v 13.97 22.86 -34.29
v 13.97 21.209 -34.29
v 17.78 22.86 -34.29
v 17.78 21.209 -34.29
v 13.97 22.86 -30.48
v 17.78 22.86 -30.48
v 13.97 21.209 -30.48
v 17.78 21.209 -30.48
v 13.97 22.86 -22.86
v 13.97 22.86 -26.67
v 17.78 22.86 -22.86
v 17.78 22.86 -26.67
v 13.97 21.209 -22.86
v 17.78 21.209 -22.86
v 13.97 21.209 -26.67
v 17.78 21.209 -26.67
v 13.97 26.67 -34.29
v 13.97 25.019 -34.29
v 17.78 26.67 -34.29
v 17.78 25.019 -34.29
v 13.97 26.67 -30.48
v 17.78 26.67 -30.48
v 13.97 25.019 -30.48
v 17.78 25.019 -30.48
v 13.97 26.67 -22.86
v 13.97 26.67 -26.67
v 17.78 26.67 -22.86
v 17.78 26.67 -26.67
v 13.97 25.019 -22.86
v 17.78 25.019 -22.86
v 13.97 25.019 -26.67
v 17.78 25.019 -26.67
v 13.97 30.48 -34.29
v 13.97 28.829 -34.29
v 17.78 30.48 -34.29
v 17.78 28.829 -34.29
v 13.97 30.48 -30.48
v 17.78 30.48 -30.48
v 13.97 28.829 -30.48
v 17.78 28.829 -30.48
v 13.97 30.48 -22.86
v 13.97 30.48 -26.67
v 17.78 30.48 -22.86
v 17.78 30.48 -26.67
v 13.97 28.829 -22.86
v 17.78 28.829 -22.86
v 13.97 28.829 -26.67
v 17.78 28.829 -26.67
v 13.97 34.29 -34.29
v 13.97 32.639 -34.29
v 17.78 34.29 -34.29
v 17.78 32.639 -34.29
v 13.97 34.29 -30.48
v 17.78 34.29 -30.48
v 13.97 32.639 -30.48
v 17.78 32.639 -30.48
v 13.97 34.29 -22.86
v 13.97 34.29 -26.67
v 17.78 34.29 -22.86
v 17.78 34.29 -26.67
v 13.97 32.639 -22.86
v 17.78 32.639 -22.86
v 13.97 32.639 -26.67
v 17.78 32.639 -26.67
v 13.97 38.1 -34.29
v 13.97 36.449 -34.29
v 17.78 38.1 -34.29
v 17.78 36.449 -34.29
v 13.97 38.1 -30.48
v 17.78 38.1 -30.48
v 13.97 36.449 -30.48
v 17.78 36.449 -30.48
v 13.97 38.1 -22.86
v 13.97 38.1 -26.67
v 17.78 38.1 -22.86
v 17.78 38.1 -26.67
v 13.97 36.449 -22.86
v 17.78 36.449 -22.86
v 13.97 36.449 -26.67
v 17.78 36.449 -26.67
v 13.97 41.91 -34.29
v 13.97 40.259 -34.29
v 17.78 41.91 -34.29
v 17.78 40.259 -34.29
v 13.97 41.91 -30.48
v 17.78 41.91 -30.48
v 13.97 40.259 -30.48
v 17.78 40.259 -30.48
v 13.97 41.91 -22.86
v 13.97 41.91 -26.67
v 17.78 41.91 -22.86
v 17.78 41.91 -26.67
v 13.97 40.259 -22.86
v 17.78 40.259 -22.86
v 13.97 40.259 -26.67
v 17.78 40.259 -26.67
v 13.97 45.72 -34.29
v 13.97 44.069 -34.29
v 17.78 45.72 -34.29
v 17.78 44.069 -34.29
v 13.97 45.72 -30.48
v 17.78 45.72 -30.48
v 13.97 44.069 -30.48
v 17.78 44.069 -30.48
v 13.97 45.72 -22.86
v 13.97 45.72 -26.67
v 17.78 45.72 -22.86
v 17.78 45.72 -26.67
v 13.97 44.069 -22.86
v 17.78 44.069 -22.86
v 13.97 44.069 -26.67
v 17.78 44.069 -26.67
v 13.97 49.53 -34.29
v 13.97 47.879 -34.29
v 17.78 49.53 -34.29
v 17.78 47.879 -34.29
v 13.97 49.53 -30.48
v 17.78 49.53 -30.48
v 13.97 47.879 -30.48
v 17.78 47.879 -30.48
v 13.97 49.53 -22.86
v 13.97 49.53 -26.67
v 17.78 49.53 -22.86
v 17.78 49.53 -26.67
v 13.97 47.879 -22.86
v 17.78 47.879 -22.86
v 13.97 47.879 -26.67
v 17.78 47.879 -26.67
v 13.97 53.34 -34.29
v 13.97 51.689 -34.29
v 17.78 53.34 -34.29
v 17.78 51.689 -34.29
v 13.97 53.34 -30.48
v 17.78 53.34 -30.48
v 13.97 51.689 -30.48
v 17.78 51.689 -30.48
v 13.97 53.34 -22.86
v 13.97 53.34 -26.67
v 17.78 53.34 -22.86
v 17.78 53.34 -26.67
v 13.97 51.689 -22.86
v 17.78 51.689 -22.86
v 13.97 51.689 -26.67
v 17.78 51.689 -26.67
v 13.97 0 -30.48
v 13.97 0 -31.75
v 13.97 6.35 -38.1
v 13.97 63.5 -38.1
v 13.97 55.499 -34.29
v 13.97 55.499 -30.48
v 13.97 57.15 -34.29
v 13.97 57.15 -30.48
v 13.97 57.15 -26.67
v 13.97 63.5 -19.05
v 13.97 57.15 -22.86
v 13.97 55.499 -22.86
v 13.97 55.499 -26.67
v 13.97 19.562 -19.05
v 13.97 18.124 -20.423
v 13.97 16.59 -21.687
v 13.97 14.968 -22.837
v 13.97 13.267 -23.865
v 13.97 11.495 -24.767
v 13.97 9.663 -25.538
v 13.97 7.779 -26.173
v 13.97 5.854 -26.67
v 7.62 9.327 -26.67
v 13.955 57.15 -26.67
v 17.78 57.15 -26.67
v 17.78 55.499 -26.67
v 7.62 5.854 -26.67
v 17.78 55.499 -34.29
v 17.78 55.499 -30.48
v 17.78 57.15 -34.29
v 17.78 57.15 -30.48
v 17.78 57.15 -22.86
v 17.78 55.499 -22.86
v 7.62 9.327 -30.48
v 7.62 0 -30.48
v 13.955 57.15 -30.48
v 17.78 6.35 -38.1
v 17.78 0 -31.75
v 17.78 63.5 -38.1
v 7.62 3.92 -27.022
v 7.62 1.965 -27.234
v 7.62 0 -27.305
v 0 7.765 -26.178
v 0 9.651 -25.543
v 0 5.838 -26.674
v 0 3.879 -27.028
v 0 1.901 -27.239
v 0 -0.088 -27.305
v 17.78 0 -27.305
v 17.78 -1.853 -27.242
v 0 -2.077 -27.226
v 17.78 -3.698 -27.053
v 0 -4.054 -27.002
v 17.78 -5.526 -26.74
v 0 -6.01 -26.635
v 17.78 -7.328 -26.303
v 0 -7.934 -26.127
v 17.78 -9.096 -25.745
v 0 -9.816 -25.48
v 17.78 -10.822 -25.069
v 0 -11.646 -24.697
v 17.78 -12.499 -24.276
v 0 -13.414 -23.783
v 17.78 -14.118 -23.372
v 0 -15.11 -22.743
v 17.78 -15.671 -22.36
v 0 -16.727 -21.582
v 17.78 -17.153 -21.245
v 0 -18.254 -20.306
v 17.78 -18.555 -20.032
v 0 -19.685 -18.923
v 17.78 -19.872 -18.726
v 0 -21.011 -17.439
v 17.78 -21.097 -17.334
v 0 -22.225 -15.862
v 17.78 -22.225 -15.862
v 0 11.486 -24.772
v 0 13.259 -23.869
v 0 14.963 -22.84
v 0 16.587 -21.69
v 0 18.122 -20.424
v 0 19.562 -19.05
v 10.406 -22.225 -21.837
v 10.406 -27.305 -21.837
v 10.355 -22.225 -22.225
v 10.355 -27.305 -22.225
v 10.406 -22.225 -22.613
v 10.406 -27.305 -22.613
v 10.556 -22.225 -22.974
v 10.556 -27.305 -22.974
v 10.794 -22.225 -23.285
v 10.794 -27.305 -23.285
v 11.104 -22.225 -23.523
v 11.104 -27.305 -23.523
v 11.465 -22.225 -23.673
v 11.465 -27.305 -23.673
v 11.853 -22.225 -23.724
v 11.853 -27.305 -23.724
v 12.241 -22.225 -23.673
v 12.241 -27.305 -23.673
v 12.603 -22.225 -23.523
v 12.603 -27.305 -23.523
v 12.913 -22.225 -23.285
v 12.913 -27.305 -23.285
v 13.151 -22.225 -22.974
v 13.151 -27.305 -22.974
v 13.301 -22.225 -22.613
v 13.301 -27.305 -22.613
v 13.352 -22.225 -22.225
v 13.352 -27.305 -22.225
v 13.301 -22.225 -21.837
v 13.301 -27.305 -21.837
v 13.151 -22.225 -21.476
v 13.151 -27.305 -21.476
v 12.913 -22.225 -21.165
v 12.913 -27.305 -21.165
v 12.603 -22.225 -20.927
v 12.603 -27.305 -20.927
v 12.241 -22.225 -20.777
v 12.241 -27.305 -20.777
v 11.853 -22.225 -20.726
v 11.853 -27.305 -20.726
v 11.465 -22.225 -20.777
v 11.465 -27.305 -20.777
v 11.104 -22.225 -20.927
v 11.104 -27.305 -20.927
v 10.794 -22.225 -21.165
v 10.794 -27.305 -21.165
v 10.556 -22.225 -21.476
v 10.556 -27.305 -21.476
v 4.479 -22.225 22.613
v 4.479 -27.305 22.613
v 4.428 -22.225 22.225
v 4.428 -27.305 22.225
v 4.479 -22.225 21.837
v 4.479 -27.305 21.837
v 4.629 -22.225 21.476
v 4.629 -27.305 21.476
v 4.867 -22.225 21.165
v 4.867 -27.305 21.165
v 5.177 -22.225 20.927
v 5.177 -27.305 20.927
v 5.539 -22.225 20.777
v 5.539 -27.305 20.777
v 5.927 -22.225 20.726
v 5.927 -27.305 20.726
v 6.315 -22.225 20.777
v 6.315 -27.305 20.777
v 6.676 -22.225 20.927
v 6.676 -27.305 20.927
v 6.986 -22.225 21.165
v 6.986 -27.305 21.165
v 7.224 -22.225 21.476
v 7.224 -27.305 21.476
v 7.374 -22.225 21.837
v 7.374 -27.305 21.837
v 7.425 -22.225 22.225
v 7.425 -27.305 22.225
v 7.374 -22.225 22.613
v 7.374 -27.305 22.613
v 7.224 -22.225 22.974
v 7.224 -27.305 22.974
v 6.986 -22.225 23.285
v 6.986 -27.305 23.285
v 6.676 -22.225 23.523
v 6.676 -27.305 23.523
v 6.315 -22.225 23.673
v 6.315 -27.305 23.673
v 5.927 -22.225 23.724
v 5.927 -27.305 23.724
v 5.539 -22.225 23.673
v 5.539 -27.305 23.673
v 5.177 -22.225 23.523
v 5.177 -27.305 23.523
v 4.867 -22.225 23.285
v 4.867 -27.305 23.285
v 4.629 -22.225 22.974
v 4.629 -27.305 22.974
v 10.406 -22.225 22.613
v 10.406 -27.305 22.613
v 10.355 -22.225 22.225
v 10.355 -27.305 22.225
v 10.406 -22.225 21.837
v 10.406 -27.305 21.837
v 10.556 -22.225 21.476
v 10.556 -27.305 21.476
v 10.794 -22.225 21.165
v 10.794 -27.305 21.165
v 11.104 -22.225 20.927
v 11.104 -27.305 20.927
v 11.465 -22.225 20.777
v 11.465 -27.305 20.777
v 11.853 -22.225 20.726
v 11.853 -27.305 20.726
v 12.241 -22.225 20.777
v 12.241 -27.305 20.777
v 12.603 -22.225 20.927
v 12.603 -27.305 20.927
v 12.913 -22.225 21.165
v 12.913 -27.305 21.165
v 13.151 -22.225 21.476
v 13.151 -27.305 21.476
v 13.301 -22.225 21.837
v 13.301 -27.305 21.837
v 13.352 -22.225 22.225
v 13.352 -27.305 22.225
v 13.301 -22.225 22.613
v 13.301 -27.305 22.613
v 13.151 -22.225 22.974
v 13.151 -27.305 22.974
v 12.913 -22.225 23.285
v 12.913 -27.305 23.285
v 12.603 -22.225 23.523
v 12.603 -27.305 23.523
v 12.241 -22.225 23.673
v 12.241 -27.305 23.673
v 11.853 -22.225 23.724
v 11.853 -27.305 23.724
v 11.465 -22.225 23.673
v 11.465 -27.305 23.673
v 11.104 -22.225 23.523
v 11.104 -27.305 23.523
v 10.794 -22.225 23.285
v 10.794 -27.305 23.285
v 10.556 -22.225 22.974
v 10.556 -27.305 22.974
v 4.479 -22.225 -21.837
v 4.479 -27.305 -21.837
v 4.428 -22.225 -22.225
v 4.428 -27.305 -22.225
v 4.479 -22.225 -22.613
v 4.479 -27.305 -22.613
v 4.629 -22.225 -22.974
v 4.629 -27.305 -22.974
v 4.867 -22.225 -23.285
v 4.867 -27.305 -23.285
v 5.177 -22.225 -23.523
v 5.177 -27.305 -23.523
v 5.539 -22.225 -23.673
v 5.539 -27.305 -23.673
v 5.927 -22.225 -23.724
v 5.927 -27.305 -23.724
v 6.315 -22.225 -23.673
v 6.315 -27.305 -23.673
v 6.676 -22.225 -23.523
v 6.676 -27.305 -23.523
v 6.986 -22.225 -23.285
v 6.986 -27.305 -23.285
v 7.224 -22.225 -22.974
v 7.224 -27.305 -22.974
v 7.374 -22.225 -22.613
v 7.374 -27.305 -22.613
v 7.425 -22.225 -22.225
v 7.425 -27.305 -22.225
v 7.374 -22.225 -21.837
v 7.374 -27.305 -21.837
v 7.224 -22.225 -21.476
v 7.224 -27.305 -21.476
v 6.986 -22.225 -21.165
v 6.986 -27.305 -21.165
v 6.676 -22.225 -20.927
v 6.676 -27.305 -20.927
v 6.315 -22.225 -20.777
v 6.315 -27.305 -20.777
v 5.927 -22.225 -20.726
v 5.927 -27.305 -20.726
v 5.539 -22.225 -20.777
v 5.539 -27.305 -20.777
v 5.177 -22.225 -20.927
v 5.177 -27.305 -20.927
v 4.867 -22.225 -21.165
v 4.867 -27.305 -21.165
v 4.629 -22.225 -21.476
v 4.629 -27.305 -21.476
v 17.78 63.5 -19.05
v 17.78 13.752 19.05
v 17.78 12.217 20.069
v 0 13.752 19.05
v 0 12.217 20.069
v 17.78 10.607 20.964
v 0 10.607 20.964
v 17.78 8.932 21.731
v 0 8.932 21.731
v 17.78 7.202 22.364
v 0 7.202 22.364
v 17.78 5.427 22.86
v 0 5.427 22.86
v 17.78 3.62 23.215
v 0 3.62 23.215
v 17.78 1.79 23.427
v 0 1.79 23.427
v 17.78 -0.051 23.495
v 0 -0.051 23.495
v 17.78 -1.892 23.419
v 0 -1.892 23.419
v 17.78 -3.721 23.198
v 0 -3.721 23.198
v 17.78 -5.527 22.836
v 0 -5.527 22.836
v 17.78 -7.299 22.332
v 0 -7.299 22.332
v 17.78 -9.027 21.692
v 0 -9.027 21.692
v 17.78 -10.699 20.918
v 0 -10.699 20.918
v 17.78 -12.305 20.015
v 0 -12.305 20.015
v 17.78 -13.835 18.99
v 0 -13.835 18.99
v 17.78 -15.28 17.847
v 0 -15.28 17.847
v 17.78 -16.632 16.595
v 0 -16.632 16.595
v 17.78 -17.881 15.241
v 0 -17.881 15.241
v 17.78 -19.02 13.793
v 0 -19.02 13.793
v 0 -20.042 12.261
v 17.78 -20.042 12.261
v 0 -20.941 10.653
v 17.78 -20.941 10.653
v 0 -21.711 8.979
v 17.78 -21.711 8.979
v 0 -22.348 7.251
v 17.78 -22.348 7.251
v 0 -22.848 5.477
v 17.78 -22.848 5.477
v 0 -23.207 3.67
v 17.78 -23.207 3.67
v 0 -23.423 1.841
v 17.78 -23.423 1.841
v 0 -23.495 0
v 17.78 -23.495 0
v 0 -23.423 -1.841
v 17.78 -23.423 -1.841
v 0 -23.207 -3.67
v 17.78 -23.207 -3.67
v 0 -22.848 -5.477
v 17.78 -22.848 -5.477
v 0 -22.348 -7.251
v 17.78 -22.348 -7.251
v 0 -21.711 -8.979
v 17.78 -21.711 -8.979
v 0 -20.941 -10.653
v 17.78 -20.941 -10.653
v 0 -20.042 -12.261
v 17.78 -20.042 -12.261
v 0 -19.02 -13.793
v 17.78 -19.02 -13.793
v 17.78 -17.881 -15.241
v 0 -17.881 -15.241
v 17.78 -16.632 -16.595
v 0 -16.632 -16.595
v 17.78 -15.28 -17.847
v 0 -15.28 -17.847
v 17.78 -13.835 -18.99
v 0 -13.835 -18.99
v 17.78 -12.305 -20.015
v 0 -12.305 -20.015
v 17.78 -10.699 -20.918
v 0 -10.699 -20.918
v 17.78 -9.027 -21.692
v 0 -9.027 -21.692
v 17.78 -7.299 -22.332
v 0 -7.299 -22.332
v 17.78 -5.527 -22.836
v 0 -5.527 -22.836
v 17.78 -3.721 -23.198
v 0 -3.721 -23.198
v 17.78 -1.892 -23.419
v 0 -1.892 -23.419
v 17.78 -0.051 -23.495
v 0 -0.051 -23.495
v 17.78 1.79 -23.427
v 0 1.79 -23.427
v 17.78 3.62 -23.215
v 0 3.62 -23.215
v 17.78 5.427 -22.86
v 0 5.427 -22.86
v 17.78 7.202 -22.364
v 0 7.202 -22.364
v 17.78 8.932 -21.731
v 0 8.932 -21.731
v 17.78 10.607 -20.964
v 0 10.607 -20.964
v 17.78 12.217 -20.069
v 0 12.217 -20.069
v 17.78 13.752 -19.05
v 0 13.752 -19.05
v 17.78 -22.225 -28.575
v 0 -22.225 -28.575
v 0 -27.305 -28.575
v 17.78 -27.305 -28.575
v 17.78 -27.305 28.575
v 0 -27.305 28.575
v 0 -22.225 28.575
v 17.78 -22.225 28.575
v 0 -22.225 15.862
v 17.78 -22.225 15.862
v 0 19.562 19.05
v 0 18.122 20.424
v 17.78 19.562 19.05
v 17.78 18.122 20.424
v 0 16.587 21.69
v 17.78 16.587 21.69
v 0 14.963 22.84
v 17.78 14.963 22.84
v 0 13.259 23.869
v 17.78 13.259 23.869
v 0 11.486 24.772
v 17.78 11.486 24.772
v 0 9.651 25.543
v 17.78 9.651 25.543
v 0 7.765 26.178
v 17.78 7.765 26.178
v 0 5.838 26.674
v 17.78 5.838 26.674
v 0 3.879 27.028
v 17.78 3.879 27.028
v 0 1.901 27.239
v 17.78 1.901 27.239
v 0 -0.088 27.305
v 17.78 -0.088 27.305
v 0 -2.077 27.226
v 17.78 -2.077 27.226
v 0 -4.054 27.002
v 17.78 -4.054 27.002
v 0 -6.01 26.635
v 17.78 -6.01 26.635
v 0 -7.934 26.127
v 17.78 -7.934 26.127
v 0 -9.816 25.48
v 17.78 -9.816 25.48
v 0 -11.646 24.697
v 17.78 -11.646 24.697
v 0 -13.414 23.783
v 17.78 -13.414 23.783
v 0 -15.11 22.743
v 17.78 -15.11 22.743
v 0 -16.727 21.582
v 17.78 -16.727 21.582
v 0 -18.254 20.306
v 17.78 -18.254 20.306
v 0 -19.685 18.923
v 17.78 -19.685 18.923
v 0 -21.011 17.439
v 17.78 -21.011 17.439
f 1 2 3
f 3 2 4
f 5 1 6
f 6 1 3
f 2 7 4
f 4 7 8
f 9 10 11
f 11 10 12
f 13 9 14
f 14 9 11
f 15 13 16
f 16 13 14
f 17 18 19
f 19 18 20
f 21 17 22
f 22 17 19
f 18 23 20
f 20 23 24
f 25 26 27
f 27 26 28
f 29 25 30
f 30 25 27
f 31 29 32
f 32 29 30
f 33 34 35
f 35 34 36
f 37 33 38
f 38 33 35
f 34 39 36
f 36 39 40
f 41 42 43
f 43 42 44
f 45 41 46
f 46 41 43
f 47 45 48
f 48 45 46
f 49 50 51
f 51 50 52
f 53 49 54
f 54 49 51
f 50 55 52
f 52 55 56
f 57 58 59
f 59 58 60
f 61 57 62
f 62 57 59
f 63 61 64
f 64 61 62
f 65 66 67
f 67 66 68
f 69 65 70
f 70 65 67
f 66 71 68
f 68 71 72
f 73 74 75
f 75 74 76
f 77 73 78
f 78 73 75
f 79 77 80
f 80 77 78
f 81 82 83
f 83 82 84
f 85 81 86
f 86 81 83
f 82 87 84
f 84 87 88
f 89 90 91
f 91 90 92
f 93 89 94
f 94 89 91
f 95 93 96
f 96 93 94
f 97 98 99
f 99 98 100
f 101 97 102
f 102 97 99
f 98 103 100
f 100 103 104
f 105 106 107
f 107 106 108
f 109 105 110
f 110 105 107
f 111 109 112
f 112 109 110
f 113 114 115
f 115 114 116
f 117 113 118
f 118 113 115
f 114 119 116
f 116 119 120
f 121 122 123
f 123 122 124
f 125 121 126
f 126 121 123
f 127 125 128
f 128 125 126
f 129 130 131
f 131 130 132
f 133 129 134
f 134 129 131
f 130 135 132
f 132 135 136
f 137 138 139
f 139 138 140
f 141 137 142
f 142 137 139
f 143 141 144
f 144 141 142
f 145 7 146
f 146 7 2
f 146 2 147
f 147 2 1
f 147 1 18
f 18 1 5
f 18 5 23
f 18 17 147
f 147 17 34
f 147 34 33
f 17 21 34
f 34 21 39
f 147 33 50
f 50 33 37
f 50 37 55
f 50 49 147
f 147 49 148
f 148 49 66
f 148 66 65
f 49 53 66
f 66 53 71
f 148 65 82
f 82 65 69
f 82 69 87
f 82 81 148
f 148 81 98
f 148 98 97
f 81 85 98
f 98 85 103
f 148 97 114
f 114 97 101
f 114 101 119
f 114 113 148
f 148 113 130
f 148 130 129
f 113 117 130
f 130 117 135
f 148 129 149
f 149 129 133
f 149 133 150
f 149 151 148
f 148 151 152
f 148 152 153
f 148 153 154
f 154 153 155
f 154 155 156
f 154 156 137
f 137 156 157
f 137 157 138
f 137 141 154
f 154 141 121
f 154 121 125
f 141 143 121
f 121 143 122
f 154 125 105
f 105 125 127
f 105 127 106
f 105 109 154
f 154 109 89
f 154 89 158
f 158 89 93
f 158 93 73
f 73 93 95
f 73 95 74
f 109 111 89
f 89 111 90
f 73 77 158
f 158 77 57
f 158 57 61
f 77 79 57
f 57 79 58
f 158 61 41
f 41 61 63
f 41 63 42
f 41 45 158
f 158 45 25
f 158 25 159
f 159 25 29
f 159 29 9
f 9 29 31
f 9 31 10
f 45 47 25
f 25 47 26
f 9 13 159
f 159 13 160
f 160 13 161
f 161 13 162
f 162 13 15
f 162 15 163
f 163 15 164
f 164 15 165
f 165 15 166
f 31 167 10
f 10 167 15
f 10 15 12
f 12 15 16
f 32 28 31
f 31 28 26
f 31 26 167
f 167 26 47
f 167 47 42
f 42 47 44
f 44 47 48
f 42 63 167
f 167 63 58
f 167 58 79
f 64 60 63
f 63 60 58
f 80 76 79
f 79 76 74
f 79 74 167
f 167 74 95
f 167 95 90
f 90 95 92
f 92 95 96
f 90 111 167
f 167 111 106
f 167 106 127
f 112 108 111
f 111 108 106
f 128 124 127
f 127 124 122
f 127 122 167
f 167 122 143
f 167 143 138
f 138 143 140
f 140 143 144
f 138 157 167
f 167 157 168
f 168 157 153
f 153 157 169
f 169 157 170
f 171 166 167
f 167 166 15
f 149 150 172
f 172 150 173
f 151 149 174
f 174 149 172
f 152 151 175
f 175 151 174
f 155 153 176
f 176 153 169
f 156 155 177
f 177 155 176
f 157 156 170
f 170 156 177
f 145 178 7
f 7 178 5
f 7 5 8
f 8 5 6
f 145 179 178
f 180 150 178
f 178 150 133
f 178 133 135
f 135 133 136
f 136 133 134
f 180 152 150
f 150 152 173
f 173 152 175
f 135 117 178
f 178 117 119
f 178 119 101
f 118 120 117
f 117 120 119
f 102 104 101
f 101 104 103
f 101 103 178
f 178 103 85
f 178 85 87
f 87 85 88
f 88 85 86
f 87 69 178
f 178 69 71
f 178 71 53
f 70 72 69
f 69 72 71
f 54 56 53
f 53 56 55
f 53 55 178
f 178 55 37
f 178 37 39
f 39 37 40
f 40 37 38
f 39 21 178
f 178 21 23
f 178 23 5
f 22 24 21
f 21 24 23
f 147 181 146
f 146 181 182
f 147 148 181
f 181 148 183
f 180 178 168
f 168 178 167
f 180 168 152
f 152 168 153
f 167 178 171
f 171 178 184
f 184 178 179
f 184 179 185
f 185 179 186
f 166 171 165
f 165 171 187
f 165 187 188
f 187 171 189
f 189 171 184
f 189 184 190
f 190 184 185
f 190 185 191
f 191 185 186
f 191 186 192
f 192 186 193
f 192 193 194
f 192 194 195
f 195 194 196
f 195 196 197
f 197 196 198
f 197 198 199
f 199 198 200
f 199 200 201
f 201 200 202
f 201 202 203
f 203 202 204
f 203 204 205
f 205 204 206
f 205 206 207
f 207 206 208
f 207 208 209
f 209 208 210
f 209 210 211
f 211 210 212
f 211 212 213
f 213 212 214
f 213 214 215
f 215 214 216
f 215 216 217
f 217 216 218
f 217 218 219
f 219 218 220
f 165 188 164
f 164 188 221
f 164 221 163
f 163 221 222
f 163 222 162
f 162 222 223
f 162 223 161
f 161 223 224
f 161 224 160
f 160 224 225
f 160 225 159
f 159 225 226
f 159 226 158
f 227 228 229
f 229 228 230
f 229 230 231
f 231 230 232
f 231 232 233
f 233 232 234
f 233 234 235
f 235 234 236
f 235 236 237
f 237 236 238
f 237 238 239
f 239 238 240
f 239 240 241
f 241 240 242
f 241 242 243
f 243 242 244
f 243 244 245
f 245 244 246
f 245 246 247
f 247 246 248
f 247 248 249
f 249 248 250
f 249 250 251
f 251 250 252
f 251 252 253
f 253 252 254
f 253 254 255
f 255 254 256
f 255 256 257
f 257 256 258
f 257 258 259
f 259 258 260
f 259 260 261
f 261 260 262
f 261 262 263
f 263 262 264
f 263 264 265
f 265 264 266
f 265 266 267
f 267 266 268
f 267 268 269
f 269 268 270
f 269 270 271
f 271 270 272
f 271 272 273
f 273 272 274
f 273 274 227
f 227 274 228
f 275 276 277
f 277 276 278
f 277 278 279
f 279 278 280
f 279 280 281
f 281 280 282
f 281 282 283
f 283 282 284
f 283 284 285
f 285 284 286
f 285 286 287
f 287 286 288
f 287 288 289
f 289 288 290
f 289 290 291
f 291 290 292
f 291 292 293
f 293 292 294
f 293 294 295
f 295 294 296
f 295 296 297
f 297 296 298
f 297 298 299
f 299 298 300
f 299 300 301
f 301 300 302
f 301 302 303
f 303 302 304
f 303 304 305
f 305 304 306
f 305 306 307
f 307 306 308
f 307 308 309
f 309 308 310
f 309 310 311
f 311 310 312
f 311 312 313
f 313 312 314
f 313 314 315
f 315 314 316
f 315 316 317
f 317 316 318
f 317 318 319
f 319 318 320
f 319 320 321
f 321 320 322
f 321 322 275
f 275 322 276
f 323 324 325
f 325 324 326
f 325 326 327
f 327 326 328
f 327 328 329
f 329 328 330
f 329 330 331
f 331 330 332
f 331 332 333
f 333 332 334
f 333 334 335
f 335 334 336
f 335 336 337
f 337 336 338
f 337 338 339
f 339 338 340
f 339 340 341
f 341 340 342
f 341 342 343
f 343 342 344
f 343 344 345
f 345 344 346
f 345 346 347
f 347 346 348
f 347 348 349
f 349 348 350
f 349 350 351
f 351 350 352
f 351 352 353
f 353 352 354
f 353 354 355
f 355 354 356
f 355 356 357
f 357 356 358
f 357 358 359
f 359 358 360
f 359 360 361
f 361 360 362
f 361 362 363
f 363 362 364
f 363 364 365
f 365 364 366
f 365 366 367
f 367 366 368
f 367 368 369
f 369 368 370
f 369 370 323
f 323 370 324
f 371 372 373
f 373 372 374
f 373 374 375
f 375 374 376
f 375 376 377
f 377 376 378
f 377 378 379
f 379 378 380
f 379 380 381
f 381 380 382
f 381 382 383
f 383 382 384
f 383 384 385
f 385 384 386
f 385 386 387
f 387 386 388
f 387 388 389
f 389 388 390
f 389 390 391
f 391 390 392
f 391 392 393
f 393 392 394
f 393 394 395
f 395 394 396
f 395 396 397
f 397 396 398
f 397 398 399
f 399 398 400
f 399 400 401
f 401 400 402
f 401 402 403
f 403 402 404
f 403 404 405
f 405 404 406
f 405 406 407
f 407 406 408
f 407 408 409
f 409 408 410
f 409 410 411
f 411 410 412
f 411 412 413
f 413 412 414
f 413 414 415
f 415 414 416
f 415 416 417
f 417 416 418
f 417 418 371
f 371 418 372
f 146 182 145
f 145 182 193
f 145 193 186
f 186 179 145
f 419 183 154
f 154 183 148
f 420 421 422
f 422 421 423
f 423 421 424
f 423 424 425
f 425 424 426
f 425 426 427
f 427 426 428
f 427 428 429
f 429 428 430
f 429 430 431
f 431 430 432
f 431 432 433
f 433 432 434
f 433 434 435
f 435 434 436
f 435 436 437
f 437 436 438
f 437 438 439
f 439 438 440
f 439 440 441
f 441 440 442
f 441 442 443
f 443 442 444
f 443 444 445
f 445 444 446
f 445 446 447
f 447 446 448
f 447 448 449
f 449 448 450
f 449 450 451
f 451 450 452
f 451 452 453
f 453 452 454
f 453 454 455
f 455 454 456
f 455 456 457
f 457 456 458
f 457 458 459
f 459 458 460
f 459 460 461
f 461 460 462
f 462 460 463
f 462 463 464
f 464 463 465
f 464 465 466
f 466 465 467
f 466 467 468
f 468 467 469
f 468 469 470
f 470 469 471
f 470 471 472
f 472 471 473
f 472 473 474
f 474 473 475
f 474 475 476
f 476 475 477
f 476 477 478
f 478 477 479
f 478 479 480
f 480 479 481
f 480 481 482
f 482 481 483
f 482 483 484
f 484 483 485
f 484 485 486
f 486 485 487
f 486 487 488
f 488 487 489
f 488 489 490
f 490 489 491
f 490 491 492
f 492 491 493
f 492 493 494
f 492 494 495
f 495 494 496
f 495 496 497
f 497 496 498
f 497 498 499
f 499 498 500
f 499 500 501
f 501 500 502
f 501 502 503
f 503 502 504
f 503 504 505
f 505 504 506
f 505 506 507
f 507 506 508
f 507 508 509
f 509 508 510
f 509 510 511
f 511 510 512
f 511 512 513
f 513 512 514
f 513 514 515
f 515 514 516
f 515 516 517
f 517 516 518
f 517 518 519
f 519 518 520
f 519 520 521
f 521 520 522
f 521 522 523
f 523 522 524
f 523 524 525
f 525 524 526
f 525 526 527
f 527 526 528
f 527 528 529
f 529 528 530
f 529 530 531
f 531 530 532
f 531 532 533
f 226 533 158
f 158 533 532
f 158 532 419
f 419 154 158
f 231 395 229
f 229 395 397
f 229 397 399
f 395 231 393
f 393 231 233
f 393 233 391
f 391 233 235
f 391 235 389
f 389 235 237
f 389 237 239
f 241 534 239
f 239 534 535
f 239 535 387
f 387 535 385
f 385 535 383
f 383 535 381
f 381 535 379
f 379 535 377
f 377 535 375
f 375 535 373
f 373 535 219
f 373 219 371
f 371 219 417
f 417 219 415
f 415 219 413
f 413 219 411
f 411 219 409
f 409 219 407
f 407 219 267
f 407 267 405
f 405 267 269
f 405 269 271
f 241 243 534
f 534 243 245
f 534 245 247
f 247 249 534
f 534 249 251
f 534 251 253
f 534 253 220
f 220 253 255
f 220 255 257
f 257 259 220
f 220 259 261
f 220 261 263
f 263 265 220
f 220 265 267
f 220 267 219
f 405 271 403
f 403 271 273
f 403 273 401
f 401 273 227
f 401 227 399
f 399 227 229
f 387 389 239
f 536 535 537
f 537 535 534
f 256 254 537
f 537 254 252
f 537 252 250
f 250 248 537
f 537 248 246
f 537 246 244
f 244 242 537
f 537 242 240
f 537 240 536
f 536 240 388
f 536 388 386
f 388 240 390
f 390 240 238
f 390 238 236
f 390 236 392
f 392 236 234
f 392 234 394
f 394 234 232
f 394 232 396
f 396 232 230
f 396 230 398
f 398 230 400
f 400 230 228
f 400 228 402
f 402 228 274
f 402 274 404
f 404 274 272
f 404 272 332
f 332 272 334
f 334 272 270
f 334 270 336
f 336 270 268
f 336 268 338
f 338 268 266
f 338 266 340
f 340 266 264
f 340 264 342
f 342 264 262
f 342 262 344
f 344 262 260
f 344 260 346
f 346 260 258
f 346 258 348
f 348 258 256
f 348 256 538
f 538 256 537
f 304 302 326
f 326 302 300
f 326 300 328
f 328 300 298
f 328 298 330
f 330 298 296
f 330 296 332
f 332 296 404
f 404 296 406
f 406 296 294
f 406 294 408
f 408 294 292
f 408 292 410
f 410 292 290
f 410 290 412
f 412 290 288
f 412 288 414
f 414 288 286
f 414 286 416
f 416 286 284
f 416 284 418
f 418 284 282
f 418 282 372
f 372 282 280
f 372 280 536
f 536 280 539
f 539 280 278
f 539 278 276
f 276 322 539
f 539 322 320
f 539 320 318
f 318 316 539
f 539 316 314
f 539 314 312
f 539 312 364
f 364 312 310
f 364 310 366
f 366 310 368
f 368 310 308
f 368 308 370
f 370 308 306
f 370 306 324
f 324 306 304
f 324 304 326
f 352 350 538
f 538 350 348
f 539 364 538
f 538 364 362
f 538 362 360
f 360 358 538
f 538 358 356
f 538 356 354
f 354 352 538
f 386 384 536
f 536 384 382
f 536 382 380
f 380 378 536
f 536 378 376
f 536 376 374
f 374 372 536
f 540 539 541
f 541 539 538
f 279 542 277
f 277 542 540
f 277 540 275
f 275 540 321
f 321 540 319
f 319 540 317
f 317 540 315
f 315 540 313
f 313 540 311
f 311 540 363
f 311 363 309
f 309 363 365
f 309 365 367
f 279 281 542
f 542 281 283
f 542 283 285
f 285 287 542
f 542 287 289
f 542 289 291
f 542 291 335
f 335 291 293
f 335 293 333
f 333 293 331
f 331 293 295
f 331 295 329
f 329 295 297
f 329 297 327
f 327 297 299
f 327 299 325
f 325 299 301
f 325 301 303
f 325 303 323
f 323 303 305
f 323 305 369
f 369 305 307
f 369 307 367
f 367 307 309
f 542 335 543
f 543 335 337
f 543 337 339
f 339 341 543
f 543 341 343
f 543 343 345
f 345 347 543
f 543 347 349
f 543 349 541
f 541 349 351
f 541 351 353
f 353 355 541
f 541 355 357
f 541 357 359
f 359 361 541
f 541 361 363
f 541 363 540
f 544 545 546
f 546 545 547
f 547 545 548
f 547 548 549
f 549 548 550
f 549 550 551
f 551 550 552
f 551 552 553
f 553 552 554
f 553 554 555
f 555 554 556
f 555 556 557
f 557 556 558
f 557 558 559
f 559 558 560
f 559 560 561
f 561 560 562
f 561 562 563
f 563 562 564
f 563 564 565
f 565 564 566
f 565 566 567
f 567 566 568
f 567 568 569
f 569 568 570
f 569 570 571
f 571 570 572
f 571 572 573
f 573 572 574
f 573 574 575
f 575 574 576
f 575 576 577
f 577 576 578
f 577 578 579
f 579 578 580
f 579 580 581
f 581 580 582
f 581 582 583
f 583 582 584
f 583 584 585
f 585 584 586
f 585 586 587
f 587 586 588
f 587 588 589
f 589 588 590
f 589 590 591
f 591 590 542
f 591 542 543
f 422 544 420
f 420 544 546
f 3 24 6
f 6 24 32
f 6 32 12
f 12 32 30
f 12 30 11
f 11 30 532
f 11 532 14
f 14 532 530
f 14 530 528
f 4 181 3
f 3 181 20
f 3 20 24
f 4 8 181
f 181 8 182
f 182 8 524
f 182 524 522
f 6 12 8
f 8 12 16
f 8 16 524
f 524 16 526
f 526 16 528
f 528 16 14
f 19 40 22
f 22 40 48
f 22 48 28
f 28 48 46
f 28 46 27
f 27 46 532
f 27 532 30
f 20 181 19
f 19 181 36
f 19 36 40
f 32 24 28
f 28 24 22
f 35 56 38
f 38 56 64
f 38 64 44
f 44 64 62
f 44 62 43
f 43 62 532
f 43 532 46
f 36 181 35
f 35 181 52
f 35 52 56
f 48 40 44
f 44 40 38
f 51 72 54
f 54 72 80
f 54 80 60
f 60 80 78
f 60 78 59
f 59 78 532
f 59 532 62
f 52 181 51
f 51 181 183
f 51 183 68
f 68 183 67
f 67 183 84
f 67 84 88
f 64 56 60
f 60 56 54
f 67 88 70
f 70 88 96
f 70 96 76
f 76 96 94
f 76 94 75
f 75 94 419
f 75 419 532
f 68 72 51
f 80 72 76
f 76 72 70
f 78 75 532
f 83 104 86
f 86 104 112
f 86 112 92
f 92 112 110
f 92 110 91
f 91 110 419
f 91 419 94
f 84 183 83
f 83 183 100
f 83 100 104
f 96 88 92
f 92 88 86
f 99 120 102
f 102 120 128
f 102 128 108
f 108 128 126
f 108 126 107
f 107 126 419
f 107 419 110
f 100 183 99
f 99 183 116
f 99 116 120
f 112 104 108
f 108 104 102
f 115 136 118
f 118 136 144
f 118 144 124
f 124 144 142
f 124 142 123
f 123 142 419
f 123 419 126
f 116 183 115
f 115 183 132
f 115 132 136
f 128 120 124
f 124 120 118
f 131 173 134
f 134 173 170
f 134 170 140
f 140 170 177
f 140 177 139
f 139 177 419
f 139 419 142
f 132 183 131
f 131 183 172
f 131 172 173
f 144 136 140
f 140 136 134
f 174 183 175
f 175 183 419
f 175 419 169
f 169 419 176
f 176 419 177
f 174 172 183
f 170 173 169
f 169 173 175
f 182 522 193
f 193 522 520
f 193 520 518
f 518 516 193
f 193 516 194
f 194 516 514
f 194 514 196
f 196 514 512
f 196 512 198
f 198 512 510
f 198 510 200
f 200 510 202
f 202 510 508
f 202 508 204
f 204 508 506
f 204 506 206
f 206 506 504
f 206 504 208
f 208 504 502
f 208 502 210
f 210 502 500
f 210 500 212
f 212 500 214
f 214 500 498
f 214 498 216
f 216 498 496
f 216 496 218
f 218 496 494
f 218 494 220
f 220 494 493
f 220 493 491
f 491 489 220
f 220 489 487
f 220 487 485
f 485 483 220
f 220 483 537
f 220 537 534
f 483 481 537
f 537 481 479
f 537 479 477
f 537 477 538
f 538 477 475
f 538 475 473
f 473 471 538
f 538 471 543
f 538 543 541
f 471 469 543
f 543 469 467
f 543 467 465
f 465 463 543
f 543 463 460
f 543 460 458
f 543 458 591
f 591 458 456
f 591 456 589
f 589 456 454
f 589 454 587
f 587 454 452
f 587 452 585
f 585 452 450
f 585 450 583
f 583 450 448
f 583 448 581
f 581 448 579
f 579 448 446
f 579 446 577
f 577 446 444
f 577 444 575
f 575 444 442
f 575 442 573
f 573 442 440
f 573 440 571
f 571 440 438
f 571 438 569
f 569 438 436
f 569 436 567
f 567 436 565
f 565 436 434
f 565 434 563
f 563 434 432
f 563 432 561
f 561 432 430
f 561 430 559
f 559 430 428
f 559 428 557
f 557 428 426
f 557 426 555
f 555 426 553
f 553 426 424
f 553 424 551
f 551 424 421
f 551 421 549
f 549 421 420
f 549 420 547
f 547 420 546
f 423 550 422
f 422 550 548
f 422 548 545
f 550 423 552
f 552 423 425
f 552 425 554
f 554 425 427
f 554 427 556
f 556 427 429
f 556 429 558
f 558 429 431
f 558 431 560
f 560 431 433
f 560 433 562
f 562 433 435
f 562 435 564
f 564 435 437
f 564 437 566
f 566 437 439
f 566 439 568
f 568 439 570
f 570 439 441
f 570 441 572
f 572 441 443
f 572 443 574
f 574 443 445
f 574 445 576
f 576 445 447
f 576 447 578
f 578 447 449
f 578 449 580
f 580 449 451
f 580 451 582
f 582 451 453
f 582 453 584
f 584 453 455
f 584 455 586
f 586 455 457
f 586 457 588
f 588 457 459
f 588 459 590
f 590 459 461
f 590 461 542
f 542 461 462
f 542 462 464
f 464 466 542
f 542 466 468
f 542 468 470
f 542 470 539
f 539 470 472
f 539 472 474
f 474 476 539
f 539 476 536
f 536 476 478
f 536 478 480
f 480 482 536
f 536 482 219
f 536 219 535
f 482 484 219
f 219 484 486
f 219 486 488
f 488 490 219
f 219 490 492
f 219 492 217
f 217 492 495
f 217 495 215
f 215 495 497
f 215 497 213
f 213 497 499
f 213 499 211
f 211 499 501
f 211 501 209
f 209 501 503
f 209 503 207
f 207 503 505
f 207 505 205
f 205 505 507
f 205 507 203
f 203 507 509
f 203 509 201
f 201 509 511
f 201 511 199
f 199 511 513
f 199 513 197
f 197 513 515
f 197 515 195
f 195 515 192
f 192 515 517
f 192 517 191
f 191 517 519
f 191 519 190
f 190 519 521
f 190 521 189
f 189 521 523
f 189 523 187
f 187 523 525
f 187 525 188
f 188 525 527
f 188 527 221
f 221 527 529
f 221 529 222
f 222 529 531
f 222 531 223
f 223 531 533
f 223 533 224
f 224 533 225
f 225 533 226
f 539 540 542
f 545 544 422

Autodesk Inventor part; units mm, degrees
ref_plane "YZ Plane" through (0, 0, 0) normal (1, 0, 0) x (0, 1, 0)
ref_plane "XZ Plane" through (0, 0, 0) normal (0, 1, 0) x (-1, 0, 0)
ref_plane "XY Plane" through (0, 0, 0) normal (0, 0, 1) x (1, 0, 0)
sketch "Sketch1" plane through (0, 0, 0) normal (1, 0, 0) x (0, 1, 0)
  circle A0 centre (0, 0) radius 23.495
  circle A1 centre (0, 0) radius 27.305
  line L0 (-27.305, 28.575) -> (-22.225, 28.575)
  line L1 (-22.225, 28.575) -> (-22.225, -28.575)
  line L2 (-22.225, -28.575) -> (-27.305, -28.575)
  line L3 (-27.305, -28.575) -> (-27.305, 28.575)
  line L4 (13.7518, 19.05) -> (13.7518, -19.05)
  line L5 (13.7518, 19.05) -> (19.5617, 19.05)
  line L6 (13.7518, -19.05) -> (19.5617, -19.05)
  point P0 (-22.225, 15.8623)
  point P1 (-22.225, -15.8623)
  dimension "d0" = 46.99
  dimension "d1" = 54.61
  dimension "d2" = 5.08
  dimension "d5" = 38.1
  dimension "d11" = 57.15
  dimension "d12" = 28.575
extrude "Extrusion1" add sketch "Sketch1" along normal blind 17.78 contours A0 L1 A1 L5 | L6 A1 L1 A0 | A0 L1 A1 | A1 L3 L0 L1 | L1 L2 L3 A1
sketch "Sketch2" plane through (17.78, 0, 0) normal (1, 0, 0) x (0, 0, -1)
  line L0 (19.05, 0) -> (38.1, 0)
  line L1 (38.1, 0) -> (38.1, 63.5)
  line L2 (38.1, 63.5) -> (19.05, 63.5)
  line L3 (19.05, 63.5) -> (19.05, 0)
  circle A0 centre (0, 0) radius 23.495
  circle A1 centre (0, 0) radius 27.305
  line L4 (19.05, 19.5617) -> (19.05, 13.7518) projected
  point P0 (19.05, 13.7518)
  point P1 (23.495, 0)
  dimension "d6" = 19.05
  dimension "d7" = 63.5
  dimension "d10" = 0
extrude "Extrusion2" add sketch "Sketch2" against normal blind 3.81 contours A0 L3 A1 L0 | A1 L3 L2 L1 L0 picked at (25.8542, 1.8052)
sketch "Sketch3" plane through (0, -27.305, -28.575) normal (0, -1, 0) x (1, 0, 0)
  circle A0 centre (11.8533, 50.8) radius 1.4986
  circle A1 centre (11.8533, 6.35) radius 1.4986
  line L0 (0, 57.15) -> (17.78, 57.15) projected
  line L1 (0, 0) -> (17.78, 0) projected
  line L2 (17.78, 57.15) -> (17.78, 0) projected
  circle A2 centre (5.9267, 6.35) radius 1.4986
  circle A3 centre (5.9267, 50.8) radius 1.4986
  line L3 (0, 57.15) -> (0, 0) projected
  point P0 (0, 28.575)
  dimension "d13" = 2.9972
  dimension "d14" = 2.9972
  dimension "d15" = 0
  dimension "d16" = 6.35
  dimension "d17" = 6.35
  dimension "d18" = 5.9267
  dimension "d32" = 2.9972
  dimension "d33" = 2.9972
  dimension "d34" = 5.9267
  dimension "d35" = 44.45
  dimension "d36" = 5.9267
extrude "Extrusion3" cut sketch "Sketch3" against normal blind 6.35 contours A0 | A1 | A2 | A3
sketch "Sketch4" plane through (13.97, 0, 0) normal (-1, 0, 0) x (0, 0, 1)
  line L0 (-30.48, 57.15) -> (-26.67, 57.15)
  line L1 (-26.67, 57.15) -> (-26.67, 0)
  line L2 (-26.67, 0) -> (-30.48, 0)
  line L3 (-30.48, 0) -> (-30.48, 57.15)
  line L4 (-38.1, 63.5) -> (-38.1, 0) projected
  line L5 (-19.05, 63.5) -> (-38.1, 63.5) projected
  line L6 (-38.1, 0) -> (-27.305, 0) projected
  point P0 (0, 0)
  dimension "d21" = 3.81
  dimension "d22" = 7.62
  dimension "d23" = 6.35
  dimension "d24" = 0
extrude "Extrusion4" add sketch "Sketch4" along normal blind 6.35
sketch "Sketch5" plane through (13.97, 0, -30.48) normal (0, 0, -1) x (-1, 0, 0)
  line L0 (0, 63.5) -> (0, 0) projected
  line L1 (0, 57.2597) -> (6.35, 9.3274)
  line L2 (6.35, 57.15) -> (6.35, 0) projected
  line L3 (-3.81, 0) -> (0, 0) projected
  line L4 (0, 0) -> (6.35, 0)
  line L5 (6.35, 0) -> (6.35, 57.15)
  line L6 (6.35, 57.15) -> (0, 57.15)
  line L7 (0, 57.15) -> (0, 0)
  point P0 (13.97, 0)
  point P1 (0.0145, 57.15)
extrude "Extrusion5" cut sketch "Sketch5" against normal blind 3.81 contours L6 L2 L1
chamfer "Chamfer1" distance 6.35 angle 45 1 edges at (15.875, 0, -38.1)
sketch "Sketch6" plane through (17.78, 0, 0) normal (1, 0, 0) x (0, 0, -1)
  line L0 (22.86, 57.15) -> (26.67, 57.15)
  line L1 (26.67, 57.15) -> (26.67, 55.499)
  line L2 (26.67, 55.499) -> (22.86, 55.499)
  line L3 (22.86, 55.499) -> (22.86, 57.15)
  line L4 (30.48, 57.15) -> (34.29, 57.15)
  line L5 (34.29, 57.15) -> (34.29, 55.499)
  line L6 (34.29, 55.499) -> (30.48, 55.499)
  line L7 (30.48, 55.499) -> (30.48, 57.15)
  line L8 (38.1, 63.5) -> (19.05, 63.5) projected
  line L9 (19.05, 63.5) -> (19.05, 13.7518) projected
  line L10 (38.1, 6.35) -> (38.1, 63.5) projected
  point P0 (0, 0)
  dimension "d37" = 1.651
  dimension "d38" = 6.35
  dimension "d39" = 3.81
  dimension "d40" = 3.81
  dimension "d41" = 3.81
  dimension "d42" = 3.81
  dimension "d43" = 3.81
extrude "Extrusion6" cut sketch "Sketch6" against normal blind 6.35
pattern_linear "Rectangular Pattern1" count 10 spacing 3.81 along (0, -1, 0) of "Extrusion6"
properties part number "LockMount"
